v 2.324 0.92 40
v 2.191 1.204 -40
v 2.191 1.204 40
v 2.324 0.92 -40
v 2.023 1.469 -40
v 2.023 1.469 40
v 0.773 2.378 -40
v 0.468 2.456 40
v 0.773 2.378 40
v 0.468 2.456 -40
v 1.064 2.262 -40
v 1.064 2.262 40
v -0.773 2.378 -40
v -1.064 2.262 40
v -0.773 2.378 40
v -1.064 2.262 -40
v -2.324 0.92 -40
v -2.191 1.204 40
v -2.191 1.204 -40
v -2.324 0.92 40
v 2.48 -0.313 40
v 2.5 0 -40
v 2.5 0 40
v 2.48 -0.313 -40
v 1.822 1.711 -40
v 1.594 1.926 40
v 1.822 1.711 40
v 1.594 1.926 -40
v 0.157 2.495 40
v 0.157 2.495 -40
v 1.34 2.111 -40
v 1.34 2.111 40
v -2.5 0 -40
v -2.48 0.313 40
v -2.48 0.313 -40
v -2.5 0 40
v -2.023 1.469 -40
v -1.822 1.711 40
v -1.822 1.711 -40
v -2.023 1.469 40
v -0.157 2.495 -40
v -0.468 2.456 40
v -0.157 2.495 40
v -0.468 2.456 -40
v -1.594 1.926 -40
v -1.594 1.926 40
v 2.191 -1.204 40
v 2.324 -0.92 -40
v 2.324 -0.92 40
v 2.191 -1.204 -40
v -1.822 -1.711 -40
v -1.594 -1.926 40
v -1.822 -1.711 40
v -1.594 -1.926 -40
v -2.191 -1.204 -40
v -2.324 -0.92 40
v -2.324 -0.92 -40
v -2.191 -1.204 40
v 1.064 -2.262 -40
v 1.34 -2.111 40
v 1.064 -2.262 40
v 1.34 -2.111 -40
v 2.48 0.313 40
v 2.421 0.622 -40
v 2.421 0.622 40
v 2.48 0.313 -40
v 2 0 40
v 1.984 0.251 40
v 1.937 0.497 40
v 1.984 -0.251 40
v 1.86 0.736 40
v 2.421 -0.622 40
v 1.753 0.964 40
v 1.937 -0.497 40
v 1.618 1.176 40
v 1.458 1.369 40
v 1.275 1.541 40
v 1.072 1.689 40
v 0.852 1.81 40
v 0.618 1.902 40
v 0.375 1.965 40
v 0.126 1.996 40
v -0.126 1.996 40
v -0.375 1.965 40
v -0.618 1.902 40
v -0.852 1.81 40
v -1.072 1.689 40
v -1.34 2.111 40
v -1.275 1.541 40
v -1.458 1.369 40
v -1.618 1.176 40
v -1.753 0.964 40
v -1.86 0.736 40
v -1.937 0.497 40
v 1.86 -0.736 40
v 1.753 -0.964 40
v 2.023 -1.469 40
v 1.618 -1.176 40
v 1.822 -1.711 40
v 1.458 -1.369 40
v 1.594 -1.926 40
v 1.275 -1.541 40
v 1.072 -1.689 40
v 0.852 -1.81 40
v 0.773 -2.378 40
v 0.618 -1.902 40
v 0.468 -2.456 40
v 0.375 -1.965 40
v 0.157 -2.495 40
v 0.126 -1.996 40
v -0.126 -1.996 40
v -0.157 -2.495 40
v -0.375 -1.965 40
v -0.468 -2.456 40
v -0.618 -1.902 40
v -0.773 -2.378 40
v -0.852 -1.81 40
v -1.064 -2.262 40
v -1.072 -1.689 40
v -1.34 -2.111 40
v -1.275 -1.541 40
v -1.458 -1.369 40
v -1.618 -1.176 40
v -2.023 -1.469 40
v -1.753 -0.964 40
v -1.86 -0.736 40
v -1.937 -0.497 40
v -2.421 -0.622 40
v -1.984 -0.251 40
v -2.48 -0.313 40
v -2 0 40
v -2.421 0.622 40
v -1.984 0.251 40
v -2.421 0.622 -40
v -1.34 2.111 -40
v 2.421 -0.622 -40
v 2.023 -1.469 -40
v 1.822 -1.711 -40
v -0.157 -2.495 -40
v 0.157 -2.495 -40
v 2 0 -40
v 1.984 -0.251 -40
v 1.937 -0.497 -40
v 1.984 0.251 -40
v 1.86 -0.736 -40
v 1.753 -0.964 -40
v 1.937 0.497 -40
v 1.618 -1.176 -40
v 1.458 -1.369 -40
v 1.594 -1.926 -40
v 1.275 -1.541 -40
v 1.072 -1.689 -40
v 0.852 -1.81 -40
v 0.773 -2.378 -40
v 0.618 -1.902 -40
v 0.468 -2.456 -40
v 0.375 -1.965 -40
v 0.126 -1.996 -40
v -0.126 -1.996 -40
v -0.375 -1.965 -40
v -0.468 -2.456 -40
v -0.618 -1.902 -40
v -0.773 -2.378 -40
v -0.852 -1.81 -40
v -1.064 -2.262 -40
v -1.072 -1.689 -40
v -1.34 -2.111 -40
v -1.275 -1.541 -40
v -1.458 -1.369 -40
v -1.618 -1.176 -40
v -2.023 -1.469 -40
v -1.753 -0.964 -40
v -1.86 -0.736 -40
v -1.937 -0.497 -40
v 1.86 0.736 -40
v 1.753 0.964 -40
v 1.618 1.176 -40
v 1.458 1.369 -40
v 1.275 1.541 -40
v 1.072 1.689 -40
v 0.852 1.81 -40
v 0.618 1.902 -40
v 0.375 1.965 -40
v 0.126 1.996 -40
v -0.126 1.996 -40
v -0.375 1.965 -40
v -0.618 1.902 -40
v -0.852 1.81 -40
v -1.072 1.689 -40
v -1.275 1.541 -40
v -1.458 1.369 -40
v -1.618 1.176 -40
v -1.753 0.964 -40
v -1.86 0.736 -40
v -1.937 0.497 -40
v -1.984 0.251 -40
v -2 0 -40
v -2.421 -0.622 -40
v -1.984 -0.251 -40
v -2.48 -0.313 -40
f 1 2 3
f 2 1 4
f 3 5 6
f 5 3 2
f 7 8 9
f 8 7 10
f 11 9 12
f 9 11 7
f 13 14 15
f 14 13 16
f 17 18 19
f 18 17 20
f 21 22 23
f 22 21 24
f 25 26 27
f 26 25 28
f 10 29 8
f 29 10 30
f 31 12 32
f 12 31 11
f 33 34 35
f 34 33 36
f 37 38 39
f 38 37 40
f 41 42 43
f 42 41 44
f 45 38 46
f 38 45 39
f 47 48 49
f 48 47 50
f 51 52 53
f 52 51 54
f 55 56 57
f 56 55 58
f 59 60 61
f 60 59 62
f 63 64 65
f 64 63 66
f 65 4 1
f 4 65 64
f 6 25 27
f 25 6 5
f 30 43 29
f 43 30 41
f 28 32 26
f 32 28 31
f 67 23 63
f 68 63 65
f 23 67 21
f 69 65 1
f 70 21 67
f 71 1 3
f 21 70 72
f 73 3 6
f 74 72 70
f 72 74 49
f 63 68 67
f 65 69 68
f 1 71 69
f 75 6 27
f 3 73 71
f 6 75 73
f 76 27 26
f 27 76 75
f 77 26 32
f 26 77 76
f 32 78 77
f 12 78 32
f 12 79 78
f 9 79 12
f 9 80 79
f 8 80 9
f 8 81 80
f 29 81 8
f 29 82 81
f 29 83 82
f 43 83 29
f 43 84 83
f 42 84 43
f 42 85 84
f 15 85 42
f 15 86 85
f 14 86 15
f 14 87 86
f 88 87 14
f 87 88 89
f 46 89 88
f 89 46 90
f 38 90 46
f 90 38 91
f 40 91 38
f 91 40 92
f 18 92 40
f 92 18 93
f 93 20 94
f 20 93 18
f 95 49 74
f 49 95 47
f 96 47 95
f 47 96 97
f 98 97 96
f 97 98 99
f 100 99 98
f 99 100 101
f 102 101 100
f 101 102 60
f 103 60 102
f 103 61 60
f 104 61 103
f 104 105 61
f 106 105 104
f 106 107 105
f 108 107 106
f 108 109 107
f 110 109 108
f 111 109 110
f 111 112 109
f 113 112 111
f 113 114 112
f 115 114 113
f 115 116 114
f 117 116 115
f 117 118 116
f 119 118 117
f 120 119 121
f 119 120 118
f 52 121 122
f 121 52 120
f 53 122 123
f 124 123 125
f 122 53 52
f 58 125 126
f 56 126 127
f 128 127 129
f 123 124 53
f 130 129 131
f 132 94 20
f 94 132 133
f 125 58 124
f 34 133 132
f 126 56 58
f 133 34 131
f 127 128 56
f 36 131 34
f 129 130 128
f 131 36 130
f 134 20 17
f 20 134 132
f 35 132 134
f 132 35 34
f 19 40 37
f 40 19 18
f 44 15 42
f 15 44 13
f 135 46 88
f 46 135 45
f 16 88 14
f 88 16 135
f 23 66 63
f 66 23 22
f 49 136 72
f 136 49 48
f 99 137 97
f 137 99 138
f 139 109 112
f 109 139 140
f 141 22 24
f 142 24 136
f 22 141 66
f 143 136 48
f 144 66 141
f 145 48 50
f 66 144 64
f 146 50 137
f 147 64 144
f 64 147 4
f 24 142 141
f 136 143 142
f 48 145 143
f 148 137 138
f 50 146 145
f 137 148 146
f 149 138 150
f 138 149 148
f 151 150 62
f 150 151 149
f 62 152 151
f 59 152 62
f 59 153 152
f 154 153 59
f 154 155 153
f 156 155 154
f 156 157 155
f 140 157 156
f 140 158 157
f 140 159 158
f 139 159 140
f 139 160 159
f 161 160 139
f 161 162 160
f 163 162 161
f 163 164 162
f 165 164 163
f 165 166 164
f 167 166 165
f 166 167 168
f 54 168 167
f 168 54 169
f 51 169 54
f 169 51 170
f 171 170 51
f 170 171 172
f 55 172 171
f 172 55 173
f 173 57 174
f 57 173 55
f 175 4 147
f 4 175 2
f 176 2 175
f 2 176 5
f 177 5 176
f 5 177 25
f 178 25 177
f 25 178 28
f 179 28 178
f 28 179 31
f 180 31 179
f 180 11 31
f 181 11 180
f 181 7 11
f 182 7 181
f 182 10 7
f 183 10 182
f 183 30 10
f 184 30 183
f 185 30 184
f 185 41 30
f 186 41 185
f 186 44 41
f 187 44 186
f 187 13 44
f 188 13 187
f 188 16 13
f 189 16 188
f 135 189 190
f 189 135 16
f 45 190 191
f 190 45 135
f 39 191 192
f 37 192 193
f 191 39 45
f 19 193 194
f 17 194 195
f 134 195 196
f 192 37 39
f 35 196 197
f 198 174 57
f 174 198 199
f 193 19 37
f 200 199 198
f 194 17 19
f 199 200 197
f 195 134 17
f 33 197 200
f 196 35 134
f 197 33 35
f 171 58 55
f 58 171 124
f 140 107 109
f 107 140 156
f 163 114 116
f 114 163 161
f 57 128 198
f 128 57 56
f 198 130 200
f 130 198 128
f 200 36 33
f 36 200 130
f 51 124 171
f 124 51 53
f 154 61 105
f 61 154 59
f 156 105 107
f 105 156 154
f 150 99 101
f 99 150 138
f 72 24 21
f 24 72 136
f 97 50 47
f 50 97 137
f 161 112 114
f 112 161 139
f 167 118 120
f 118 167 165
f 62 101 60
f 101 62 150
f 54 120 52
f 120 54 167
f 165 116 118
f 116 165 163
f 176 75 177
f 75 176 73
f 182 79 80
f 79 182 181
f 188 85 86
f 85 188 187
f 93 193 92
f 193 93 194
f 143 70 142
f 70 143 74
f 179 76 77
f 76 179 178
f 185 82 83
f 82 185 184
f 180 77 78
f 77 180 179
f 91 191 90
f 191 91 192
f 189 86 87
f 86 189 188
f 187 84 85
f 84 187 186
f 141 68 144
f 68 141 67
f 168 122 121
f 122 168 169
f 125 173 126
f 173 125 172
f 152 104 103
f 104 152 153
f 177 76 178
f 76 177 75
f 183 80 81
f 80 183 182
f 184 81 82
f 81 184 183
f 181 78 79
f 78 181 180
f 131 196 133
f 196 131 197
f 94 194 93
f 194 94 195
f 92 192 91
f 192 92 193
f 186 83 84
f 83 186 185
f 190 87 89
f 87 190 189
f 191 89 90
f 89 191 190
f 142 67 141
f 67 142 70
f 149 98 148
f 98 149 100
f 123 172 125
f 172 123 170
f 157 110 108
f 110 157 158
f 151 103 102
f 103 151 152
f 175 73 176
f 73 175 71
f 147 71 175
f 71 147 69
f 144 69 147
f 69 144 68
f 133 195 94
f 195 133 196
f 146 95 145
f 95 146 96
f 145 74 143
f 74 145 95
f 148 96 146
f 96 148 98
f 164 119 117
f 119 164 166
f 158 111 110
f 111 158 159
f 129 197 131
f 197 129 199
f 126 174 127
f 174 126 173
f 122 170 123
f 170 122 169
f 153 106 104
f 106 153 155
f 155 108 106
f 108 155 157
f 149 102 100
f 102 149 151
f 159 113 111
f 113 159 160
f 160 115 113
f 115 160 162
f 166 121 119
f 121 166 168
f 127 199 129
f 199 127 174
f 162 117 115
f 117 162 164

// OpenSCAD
$fn = 50;


difference() {
	union() {
		translate(v = [0, 0, -40.0000000000]) {
			cylinder(h = 80, r = 2.5000000000);
		}
	}
	union() {
		translate(v = [0, 0, -100.0000000000]) {
			cylinder(h = 200, r = 2);
		}
	}
}
